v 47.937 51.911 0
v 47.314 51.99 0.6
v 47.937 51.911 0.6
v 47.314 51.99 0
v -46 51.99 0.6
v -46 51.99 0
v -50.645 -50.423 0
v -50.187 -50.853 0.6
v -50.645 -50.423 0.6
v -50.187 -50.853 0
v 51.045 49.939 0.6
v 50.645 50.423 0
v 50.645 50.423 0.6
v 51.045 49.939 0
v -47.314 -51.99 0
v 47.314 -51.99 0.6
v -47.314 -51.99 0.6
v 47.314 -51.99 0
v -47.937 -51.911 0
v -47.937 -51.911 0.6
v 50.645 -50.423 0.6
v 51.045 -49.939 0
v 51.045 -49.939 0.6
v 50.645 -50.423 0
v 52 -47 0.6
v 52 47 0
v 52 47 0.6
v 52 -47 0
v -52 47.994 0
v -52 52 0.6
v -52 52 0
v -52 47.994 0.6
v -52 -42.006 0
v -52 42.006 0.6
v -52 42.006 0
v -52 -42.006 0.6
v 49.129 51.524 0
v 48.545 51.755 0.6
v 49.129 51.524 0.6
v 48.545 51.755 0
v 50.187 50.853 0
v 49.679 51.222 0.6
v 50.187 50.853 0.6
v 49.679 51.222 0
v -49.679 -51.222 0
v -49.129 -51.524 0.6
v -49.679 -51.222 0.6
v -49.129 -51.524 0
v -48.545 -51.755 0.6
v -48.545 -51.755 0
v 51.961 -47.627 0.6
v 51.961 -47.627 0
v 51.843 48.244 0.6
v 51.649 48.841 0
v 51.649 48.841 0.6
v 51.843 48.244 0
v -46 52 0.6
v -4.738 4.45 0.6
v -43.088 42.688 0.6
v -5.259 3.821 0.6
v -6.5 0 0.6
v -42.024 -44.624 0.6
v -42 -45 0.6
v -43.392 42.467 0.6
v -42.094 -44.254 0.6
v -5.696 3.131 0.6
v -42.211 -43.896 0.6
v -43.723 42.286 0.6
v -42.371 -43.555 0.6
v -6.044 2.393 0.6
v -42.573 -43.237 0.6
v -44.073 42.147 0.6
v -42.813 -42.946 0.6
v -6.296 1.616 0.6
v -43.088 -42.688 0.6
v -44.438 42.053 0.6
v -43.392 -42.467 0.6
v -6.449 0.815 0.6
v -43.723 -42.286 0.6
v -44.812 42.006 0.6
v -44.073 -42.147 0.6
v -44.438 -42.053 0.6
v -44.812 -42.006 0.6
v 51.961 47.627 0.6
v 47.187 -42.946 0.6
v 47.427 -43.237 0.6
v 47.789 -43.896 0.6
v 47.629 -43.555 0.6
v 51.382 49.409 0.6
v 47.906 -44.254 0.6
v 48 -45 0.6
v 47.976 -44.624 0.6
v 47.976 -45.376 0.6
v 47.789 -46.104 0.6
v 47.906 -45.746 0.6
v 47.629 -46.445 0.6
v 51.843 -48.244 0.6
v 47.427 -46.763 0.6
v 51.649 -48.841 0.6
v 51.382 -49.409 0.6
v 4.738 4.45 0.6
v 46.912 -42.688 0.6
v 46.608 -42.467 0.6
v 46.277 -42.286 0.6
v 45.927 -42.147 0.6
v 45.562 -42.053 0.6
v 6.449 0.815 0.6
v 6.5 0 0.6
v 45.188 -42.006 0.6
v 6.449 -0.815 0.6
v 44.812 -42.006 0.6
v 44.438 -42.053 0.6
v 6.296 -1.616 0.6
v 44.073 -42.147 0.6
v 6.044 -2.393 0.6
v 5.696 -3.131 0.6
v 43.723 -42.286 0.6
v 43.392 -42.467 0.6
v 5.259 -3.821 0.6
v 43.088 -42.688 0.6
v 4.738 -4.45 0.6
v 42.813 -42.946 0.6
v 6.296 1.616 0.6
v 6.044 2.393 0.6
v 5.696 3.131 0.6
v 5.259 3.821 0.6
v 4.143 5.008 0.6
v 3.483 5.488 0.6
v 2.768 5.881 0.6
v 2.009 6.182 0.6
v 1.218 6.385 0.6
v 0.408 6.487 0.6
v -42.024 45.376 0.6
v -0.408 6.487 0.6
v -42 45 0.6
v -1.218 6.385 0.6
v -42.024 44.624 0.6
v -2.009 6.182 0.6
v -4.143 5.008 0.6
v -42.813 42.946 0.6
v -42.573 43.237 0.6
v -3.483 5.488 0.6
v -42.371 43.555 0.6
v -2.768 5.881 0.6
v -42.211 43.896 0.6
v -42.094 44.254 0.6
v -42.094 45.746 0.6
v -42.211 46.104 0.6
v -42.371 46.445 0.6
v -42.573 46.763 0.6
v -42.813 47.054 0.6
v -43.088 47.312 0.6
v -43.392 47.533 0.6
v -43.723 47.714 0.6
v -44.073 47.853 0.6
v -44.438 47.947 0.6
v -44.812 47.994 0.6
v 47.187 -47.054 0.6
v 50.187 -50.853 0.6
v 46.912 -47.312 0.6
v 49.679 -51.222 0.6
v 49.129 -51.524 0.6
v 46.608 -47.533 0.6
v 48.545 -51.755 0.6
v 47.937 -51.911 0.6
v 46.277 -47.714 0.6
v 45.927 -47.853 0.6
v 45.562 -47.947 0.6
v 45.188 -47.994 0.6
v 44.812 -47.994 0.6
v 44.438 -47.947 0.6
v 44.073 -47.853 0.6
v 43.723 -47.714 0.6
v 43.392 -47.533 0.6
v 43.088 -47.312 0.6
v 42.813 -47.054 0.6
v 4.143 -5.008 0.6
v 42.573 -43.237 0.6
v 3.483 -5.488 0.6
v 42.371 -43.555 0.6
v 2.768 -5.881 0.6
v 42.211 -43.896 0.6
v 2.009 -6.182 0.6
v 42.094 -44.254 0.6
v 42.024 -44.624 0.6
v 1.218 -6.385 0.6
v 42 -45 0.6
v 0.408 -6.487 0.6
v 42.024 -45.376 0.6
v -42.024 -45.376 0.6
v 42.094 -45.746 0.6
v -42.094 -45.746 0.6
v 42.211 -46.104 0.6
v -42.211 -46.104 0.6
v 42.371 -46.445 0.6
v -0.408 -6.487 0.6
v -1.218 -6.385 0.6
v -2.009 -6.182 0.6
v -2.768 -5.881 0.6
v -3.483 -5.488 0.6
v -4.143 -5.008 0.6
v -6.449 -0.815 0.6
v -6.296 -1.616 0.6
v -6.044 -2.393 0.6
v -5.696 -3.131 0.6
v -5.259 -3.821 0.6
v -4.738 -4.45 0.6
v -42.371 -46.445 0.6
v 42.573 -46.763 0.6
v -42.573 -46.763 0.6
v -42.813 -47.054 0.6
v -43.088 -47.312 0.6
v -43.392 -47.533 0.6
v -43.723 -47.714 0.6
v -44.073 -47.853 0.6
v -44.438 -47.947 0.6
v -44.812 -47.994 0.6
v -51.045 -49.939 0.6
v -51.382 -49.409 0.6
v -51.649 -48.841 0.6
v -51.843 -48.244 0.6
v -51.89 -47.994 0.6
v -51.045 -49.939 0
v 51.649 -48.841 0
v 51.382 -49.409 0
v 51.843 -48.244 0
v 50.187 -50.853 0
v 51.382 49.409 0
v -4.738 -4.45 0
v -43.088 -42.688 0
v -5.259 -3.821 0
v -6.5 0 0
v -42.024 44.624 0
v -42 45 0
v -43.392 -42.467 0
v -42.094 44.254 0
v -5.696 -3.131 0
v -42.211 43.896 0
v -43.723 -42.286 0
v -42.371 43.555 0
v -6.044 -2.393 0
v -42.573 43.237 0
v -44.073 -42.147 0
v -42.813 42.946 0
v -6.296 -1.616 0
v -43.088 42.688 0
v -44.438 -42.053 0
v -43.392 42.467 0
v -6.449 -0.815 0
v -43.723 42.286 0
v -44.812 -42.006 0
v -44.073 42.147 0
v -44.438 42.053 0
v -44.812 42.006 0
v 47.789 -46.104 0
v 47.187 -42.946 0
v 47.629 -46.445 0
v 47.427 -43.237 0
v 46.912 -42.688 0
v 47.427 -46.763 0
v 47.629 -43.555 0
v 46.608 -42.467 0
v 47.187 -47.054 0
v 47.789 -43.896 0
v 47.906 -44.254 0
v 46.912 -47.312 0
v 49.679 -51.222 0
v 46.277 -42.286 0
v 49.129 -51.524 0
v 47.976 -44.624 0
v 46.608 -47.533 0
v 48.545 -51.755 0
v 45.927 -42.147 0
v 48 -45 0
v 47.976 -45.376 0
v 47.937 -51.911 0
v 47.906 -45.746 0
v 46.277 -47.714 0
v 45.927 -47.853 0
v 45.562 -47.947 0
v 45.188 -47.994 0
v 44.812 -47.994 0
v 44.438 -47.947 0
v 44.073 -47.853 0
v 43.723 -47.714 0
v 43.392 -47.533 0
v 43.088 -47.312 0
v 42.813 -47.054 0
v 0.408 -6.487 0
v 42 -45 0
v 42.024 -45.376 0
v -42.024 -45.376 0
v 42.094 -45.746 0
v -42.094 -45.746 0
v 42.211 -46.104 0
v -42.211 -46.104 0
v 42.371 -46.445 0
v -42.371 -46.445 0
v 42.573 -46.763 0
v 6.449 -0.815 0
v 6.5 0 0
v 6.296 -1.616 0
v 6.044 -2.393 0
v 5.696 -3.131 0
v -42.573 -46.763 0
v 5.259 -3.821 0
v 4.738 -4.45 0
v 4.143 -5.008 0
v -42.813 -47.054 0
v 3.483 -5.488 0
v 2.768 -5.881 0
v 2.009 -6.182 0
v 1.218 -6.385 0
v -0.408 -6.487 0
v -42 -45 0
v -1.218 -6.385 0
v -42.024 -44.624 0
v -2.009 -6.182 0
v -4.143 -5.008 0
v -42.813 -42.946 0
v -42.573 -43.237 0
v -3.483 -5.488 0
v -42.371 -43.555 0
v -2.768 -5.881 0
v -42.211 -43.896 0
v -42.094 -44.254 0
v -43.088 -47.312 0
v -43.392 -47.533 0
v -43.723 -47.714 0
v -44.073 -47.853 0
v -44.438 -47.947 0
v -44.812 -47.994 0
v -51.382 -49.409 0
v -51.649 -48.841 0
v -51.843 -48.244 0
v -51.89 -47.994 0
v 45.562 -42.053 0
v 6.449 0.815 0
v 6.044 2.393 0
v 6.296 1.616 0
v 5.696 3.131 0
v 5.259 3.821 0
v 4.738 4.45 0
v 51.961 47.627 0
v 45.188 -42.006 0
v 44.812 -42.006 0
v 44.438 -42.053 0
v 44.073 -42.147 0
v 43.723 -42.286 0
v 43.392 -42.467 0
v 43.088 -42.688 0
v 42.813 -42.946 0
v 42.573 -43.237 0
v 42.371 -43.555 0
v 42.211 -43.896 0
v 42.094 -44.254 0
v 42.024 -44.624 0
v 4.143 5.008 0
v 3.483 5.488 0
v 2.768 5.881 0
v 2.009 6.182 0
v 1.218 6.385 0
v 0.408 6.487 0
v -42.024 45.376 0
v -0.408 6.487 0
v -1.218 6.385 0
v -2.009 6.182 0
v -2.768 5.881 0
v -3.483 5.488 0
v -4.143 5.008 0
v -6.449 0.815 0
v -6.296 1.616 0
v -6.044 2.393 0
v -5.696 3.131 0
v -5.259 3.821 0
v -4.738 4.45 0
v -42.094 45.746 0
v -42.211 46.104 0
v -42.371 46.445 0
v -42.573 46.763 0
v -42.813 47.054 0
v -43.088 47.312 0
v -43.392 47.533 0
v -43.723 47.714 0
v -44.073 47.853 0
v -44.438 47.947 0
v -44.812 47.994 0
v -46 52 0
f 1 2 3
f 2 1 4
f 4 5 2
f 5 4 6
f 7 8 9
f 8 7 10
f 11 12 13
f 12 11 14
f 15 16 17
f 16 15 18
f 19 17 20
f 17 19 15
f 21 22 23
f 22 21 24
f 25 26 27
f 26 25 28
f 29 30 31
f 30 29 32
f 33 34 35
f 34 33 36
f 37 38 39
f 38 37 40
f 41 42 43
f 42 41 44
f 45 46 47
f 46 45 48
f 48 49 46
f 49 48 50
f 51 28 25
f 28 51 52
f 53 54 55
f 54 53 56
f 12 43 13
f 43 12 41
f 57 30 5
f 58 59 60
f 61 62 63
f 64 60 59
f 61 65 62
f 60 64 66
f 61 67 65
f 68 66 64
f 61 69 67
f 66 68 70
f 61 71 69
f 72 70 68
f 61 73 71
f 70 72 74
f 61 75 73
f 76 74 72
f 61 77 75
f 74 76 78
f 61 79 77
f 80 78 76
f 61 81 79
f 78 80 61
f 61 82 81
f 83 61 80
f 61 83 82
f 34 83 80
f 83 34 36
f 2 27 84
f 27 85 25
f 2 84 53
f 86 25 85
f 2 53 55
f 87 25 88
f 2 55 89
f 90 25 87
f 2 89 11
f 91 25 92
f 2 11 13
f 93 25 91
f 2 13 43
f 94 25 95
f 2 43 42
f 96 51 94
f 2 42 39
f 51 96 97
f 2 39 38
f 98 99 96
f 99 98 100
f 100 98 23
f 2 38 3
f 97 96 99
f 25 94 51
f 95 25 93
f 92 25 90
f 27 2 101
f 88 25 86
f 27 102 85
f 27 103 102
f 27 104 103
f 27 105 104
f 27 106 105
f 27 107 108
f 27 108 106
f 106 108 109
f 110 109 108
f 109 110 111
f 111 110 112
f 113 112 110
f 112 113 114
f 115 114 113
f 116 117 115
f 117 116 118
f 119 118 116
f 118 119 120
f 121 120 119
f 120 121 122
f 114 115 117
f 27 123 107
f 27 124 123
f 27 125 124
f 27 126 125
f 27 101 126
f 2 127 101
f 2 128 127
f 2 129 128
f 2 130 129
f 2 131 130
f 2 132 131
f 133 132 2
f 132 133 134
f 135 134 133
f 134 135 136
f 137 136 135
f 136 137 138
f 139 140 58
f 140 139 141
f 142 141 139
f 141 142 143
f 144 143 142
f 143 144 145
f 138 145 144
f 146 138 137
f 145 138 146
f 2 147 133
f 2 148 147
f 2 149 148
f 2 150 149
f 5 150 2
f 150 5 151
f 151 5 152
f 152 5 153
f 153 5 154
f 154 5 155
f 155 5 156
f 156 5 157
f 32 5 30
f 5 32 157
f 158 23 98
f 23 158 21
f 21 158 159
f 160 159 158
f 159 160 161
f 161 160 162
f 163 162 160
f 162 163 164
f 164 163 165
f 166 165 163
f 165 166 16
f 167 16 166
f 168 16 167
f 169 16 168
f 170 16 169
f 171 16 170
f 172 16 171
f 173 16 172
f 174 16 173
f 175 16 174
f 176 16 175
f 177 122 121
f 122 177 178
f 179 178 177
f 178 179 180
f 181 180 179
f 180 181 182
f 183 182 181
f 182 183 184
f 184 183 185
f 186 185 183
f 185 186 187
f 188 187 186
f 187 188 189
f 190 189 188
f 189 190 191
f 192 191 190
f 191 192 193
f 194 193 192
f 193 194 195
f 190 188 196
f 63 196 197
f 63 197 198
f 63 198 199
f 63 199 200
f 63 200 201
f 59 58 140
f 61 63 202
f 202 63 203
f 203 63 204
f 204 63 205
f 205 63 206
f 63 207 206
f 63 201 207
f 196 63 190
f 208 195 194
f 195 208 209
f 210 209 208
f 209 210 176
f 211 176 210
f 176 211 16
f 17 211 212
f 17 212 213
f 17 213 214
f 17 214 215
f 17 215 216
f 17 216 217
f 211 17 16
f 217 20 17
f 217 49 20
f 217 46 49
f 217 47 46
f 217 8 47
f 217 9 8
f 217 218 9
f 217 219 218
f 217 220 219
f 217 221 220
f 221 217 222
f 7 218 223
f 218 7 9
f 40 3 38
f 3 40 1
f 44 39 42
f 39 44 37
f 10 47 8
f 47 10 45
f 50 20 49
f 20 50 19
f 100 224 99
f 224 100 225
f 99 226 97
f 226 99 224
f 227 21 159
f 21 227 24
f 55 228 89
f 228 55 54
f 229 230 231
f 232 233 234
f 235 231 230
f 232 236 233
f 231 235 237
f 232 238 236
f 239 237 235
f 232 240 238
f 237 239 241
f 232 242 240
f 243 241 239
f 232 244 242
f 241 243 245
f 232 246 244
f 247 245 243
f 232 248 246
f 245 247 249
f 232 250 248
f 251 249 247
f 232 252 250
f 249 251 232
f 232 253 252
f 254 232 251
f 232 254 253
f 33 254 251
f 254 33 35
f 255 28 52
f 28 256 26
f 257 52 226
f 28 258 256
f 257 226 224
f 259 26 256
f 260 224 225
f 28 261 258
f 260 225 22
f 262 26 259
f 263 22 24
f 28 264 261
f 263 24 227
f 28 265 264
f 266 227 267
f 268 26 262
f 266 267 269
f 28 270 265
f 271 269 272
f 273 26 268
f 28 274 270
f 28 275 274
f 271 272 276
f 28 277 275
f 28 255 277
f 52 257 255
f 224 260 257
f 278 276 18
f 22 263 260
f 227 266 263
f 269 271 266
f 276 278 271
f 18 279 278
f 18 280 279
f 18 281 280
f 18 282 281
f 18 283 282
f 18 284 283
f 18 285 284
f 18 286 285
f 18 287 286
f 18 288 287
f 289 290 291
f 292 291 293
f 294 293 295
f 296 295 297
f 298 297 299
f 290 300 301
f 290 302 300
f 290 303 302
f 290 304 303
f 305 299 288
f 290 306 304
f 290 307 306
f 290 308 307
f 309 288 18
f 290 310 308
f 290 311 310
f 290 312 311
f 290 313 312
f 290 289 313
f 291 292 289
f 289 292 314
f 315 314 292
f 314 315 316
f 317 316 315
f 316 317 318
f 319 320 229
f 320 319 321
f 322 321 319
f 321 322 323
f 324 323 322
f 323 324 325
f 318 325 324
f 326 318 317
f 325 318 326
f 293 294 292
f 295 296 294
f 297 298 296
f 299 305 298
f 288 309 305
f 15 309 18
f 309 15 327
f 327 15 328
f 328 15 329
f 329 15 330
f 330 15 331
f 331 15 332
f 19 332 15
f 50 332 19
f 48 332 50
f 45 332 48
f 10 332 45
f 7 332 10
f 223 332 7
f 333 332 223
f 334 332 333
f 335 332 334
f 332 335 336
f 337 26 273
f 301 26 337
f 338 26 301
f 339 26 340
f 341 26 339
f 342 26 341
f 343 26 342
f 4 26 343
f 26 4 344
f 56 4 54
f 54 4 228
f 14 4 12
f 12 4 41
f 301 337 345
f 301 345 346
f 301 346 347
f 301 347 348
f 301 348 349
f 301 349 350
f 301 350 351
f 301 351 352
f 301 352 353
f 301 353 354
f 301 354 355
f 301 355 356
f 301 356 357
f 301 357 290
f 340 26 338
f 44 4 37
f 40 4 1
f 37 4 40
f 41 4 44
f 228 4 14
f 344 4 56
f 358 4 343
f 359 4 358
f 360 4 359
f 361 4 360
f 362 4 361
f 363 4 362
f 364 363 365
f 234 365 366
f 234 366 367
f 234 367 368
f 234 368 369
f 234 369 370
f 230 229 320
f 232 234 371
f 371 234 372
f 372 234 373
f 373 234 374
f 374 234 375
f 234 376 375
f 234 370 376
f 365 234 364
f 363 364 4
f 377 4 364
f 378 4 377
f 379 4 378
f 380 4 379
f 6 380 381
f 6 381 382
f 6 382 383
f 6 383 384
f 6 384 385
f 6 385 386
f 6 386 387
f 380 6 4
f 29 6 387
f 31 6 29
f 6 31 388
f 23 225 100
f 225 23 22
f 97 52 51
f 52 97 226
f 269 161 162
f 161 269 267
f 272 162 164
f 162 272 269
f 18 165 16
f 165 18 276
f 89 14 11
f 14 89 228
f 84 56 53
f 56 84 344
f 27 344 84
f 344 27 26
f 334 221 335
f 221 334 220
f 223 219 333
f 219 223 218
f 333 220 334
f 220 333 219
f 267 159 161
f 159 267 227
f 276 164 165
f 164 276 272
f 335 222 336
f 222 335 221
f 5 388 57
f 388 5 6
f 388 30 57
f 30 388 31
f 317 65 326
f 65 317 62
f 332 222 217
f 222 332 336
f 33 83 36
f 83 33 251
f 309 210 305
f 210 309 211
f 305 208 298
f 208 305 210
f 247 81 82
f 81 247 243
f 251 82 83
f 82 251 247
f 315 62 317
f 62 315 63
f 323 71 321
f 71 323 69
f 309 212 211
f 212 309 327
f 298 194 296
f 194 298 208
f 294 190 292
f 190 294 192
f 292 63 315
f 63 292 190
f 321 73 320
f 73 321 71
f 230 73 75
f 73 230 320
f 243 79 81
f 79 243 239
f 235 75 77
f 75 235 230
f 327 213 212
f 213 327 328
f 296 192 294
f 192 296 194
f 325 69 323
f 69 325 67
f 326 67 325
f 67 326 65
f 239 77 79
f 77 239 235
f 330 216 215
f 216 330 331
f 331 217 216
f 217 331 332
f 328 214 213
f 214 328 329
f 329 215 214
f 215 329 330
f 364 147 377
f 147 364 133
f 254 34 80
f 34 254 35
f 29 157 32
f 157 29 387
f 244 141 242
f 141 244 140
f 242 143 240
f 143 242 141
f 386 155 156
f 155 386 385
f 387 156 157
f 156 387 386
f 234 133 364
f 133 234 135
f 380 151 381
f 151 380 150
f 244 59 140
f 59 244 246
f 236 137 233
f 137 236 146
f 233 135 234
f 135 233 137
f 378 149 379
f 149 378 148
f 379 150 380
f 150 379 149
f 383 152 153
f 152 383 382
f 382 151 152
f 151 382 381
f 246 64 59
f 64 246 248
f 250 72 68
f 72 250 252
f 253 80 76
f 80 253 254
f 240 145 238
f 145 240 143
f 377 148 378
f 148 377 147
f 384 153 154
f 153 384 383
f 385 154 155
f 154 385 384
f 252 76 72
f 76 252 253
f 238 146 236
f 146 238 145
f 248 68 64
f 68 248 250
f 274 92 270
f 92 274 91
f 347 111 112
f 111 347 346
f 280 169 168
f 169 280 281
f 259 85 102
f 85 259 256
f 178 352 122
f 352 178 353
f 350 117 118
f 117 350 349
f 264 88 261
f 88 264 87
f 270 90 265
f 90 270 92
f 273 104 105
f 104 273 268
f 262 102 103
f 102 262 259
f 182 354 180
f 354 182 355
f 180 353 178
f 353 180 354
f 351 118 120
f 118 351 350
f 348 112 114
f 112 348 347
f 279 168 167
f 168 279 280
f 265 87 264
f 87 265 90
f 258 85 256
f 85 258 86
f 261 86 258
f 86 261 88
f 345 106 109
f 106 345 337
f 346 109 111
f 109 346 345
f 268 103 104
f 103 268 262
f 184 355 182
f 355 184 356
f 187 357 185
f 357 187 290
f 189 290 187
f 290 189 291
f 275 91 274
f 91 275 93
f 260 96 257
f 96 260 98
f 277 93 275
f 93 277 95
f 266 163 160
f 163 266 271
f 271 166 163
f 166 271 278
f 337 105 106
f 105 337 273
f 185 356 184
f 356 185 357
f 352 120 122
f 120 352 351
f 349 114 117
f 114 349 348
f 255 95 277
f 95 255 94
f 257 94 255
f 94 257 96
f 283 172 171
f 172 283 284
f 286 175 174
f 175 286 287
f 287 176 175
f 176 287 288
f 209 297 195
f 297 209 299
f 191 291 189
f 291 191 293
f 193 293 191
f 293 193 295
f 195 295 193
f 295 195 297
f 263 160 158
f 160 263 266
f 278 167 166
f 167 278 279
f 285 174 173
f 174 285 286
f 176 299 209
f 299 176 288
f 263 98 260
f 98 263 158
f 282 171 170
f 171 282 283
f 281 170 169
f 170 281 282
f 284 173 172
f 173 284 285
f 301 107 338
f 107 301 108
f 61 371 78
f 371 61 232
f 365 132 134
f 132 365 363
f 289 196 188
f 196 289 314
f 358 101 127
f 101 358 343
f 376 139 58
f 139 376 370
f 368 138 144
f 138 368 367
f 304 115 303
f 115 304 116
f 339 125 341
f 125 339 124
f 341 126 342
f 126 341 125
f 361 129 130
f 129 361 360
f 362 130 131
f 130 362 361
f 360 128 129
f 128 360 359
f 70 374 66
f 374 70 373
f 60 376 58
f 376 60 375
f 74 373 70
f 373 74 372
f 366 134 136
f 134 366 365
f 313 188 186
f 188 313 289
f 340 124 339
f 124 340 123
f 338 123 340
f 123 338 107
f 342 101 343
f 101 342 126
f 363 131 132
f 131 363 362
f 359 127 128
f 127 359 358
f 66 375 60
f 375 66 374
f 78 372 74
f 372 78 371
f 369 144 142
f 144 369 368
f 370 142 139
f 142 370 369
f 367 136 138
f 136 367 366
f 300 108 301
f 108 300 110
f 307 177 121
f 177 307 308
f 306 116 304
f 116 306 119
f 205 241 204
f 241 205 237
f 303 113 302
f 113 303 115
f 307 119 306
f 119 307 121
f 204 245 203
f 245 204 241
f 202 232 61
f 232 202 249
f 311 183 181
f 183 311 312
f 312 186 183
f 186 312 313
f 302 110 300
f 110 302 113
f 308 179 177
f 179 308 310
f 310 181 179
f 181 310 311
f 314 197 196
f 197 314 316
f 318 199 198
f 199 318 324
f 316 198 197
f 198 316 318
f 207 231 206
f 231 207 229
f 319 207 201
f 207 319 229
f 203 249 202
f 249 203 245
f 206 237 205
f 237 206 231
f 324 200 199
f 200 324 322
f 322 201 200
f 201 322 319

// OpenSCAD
$fn = 50;


difference() {
	union() {
		translate(v = [0, 0, 0]) {
			rotate(a = [0, 0, 0]) {
				hull() {
					translate(v = [-47.0000000000, 47.0000000000, 0]) {
						rotate(a = [0, 0, 0]) {
							translate(v = [0, 0, 0]) {
								rotate(a = [0, 0, 0]) {
									cylinder(h = 0.6000000000, r = 5);
								}
							}
						}
					}
					translate(v = [47.0000000000, 47.0000000000, 0]) {
						rotate(a = [0, 0, 0]) {
							translate(v = [0, 0, 0]) {
								rotate(a = [0, 0, 0]) {
									cylinder(h = 0.6000000000, r = 5);
								}
							}
						}
					}
					translate(v = [-47.0000000000, -47.0000000000, 0]) {
						rotate(a = [0, 0, 0]) {
							translate(v = [0, 0, 0]) {
								rotate(a = [0, 0, 0]) {
									cylinder(h = 0.6000000000, r = 5);
								}
							}
						}
					}
					translate(v = [47.0000000000, -47.0000000000, 0]) {
						rotate(a = [0, 0, 0]) {
							translate(v = [0, 0, 0]) {
								rotate(a = [0, 0, 0]) {
									cylinder(h = 0.6000000000, r = 5);
								}
							}
						}
					}
				}
			}
		}
		translate(v = [-52.0000000000, 46.0000000000, 0]) {
			rotate(a = [0, 0, 0]) {
				cube(size = [6, 6, 0.6000000000]);
			}
		}
	}
	union() {
		translate(v = [-52.5000000000, -45.0000000000, -125]) {
			rotate(a = [0, 0, 0]) {
				hull() {
					translate(v = [7.5000000000, 0, 0]) {
						rotate(a = [0, 0, 0]) {
							translate(v = [0, 0, 0]) {
								rotate(a = [0, 0, 0]) {
									cylinder(h = 250, r = 3.0000000000);
								}
							}
						}
					}
					translate(v = [-7.5000000000, 0, 0]) {
						rotate(a = [0, 0, 0]) {
							translate(v = [0, 0, 0]) {
								rotate(a = [0, 0, 0]) {
									cylinder(h = 250, r = 3.0000000000);
								}
							}
						}
					}
				}
			}
		}
		translate(v = [-52.5000000000, 45.0000000000, -125]) {
			rotate(a = [0, 0, 0]) {
				hull() {
					translate(v = [7.5000000000, 0, 0]) {
						rotate(a = [0, 0, 0]) {
							translate(v = [0, 0, 0]) {
								rotate(a = [0, 0, 0]) {
									cylinder(h = 250, r = 3.0000000000);
								}
							}
						}
					}
					translate(v = [-7.5000000000, 0, 0]) {
						rotate(a = [0, 0, 0]) {
							translate(v = [0, 0, 0]) {
								rotate(a = [0, 0, 0]) {
									cylinder(h = 250, r = 3.0000000000);
								}
							}
						}
					}
				}
			}
		}
		translate(v = [45.0000000000, -45.0000000000, -125.0000000000]) {
			rotate(a = [0, 0, 0]) {
				cylinder(h = 250, r = 3.0000000000);
			}
		}
		translate(v = [0, 0, 0.0000000000]) {
			rotate(a = [0, 0, 0]) {
				cylinder(h = 0.6000000000, r = 6.5000000000);
			}
		}
	}
}
